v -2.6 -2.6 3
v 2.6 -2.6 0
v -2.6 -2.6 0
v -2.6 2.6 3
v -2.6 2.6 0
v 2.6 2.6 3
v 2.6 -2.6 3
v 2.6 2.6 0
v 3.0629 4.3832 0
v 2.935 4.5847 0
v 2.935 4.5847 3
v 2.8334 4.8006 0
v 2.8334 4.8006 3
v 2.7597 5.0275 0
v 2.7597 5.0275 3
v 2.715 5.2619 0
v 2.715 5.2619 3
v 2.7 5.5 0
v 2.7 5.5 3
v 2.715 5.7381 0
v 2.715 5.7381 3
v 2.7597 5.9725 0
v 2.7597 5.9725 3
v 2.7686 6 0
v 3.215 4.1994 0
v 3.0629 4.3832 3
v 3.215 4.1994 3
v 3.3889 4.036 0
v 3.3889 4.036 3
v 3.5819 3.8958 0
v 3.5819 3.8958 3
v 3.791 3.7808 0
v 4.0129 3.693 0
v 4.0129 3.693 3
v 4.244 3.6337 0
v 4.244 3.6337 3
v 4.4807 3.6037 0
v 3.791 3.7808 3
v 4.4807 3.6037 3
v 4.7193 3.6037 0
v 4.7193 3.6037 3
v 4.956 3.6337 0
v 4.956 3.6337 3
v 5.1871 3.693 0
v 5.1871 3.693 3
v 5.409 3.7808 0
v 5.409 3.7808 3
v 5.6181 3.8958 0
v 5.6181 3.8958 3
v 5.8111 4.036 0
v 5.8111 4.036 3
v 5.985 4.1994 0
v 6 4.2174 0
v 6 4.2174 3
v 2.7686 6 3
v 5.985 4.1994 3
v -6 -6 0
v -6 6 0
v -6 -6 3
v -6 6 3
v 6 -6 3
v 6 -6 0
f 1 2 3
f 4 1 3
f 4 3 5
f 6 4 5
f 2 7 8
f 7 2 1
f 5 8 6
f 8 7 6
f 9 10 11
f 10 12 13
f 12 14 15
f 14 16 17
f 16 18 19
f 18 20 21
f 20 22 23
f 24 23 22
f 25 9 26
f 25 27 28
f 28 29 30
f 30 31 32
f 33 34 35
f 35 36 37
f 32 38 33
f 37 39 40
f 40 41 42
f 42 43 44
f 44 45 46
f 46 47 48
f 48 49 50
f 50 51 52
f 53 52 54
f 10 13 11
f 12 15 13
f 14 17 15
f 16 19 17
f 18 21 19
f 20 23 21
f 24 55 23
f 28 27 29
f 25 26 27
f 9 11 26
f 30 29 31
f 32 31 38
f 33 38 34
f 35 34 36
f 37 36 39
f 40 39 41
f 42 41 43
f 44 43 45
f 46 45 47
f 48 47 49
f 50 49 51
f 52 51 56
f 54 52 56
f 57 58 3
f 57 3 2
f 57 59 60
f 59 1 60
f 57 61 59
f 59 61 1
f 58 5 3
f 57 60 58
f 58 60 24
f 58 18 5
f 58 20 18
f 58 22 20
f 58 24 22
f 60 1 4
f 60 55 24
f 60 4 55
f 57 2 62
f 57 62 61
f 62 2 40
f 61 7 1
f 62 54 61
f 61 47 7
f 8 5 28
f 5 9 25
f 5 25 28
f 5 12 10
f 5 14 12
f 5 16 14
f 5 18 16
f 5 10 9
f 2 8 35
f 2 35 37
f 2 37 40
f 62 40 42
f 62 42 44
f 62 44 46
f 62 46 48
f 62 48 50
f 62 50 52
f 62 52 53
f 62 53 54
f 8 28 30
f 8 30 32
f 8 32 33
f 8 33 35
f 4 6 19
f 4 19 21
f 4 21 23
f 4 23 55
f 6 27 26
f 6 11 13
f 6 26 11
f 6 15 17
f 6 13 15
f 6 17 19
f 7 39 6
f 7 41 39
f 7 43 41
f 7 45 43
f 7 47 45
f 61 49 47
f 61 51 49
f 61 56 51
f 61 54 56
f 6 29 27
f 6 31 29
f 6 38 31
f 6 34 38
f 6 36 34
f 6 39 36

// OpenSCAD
$fn = 50;

difference() {
	union() {
		translate(v = [0, 0, 0]) {
			rotate(a = [0, 0, 0]) {
				difference() {
					union() {
						translate(v = [-6.0, -6.0, 0]) {
							cube(size = [12.0, 12.0, 3.0]);
						}
					}
					union() {
						translate(v = [-2.6, -2.6, -0.1]) {
							cube(size = [5.2, 5.2, 3.2]);
						}
						translate(v = [4.6, 5.5, -0.1]) {
							cylinder(h = 3.2, r = 1.9000000000000001);
						}
					}
				}
			}
		}
	}
	union();
}
